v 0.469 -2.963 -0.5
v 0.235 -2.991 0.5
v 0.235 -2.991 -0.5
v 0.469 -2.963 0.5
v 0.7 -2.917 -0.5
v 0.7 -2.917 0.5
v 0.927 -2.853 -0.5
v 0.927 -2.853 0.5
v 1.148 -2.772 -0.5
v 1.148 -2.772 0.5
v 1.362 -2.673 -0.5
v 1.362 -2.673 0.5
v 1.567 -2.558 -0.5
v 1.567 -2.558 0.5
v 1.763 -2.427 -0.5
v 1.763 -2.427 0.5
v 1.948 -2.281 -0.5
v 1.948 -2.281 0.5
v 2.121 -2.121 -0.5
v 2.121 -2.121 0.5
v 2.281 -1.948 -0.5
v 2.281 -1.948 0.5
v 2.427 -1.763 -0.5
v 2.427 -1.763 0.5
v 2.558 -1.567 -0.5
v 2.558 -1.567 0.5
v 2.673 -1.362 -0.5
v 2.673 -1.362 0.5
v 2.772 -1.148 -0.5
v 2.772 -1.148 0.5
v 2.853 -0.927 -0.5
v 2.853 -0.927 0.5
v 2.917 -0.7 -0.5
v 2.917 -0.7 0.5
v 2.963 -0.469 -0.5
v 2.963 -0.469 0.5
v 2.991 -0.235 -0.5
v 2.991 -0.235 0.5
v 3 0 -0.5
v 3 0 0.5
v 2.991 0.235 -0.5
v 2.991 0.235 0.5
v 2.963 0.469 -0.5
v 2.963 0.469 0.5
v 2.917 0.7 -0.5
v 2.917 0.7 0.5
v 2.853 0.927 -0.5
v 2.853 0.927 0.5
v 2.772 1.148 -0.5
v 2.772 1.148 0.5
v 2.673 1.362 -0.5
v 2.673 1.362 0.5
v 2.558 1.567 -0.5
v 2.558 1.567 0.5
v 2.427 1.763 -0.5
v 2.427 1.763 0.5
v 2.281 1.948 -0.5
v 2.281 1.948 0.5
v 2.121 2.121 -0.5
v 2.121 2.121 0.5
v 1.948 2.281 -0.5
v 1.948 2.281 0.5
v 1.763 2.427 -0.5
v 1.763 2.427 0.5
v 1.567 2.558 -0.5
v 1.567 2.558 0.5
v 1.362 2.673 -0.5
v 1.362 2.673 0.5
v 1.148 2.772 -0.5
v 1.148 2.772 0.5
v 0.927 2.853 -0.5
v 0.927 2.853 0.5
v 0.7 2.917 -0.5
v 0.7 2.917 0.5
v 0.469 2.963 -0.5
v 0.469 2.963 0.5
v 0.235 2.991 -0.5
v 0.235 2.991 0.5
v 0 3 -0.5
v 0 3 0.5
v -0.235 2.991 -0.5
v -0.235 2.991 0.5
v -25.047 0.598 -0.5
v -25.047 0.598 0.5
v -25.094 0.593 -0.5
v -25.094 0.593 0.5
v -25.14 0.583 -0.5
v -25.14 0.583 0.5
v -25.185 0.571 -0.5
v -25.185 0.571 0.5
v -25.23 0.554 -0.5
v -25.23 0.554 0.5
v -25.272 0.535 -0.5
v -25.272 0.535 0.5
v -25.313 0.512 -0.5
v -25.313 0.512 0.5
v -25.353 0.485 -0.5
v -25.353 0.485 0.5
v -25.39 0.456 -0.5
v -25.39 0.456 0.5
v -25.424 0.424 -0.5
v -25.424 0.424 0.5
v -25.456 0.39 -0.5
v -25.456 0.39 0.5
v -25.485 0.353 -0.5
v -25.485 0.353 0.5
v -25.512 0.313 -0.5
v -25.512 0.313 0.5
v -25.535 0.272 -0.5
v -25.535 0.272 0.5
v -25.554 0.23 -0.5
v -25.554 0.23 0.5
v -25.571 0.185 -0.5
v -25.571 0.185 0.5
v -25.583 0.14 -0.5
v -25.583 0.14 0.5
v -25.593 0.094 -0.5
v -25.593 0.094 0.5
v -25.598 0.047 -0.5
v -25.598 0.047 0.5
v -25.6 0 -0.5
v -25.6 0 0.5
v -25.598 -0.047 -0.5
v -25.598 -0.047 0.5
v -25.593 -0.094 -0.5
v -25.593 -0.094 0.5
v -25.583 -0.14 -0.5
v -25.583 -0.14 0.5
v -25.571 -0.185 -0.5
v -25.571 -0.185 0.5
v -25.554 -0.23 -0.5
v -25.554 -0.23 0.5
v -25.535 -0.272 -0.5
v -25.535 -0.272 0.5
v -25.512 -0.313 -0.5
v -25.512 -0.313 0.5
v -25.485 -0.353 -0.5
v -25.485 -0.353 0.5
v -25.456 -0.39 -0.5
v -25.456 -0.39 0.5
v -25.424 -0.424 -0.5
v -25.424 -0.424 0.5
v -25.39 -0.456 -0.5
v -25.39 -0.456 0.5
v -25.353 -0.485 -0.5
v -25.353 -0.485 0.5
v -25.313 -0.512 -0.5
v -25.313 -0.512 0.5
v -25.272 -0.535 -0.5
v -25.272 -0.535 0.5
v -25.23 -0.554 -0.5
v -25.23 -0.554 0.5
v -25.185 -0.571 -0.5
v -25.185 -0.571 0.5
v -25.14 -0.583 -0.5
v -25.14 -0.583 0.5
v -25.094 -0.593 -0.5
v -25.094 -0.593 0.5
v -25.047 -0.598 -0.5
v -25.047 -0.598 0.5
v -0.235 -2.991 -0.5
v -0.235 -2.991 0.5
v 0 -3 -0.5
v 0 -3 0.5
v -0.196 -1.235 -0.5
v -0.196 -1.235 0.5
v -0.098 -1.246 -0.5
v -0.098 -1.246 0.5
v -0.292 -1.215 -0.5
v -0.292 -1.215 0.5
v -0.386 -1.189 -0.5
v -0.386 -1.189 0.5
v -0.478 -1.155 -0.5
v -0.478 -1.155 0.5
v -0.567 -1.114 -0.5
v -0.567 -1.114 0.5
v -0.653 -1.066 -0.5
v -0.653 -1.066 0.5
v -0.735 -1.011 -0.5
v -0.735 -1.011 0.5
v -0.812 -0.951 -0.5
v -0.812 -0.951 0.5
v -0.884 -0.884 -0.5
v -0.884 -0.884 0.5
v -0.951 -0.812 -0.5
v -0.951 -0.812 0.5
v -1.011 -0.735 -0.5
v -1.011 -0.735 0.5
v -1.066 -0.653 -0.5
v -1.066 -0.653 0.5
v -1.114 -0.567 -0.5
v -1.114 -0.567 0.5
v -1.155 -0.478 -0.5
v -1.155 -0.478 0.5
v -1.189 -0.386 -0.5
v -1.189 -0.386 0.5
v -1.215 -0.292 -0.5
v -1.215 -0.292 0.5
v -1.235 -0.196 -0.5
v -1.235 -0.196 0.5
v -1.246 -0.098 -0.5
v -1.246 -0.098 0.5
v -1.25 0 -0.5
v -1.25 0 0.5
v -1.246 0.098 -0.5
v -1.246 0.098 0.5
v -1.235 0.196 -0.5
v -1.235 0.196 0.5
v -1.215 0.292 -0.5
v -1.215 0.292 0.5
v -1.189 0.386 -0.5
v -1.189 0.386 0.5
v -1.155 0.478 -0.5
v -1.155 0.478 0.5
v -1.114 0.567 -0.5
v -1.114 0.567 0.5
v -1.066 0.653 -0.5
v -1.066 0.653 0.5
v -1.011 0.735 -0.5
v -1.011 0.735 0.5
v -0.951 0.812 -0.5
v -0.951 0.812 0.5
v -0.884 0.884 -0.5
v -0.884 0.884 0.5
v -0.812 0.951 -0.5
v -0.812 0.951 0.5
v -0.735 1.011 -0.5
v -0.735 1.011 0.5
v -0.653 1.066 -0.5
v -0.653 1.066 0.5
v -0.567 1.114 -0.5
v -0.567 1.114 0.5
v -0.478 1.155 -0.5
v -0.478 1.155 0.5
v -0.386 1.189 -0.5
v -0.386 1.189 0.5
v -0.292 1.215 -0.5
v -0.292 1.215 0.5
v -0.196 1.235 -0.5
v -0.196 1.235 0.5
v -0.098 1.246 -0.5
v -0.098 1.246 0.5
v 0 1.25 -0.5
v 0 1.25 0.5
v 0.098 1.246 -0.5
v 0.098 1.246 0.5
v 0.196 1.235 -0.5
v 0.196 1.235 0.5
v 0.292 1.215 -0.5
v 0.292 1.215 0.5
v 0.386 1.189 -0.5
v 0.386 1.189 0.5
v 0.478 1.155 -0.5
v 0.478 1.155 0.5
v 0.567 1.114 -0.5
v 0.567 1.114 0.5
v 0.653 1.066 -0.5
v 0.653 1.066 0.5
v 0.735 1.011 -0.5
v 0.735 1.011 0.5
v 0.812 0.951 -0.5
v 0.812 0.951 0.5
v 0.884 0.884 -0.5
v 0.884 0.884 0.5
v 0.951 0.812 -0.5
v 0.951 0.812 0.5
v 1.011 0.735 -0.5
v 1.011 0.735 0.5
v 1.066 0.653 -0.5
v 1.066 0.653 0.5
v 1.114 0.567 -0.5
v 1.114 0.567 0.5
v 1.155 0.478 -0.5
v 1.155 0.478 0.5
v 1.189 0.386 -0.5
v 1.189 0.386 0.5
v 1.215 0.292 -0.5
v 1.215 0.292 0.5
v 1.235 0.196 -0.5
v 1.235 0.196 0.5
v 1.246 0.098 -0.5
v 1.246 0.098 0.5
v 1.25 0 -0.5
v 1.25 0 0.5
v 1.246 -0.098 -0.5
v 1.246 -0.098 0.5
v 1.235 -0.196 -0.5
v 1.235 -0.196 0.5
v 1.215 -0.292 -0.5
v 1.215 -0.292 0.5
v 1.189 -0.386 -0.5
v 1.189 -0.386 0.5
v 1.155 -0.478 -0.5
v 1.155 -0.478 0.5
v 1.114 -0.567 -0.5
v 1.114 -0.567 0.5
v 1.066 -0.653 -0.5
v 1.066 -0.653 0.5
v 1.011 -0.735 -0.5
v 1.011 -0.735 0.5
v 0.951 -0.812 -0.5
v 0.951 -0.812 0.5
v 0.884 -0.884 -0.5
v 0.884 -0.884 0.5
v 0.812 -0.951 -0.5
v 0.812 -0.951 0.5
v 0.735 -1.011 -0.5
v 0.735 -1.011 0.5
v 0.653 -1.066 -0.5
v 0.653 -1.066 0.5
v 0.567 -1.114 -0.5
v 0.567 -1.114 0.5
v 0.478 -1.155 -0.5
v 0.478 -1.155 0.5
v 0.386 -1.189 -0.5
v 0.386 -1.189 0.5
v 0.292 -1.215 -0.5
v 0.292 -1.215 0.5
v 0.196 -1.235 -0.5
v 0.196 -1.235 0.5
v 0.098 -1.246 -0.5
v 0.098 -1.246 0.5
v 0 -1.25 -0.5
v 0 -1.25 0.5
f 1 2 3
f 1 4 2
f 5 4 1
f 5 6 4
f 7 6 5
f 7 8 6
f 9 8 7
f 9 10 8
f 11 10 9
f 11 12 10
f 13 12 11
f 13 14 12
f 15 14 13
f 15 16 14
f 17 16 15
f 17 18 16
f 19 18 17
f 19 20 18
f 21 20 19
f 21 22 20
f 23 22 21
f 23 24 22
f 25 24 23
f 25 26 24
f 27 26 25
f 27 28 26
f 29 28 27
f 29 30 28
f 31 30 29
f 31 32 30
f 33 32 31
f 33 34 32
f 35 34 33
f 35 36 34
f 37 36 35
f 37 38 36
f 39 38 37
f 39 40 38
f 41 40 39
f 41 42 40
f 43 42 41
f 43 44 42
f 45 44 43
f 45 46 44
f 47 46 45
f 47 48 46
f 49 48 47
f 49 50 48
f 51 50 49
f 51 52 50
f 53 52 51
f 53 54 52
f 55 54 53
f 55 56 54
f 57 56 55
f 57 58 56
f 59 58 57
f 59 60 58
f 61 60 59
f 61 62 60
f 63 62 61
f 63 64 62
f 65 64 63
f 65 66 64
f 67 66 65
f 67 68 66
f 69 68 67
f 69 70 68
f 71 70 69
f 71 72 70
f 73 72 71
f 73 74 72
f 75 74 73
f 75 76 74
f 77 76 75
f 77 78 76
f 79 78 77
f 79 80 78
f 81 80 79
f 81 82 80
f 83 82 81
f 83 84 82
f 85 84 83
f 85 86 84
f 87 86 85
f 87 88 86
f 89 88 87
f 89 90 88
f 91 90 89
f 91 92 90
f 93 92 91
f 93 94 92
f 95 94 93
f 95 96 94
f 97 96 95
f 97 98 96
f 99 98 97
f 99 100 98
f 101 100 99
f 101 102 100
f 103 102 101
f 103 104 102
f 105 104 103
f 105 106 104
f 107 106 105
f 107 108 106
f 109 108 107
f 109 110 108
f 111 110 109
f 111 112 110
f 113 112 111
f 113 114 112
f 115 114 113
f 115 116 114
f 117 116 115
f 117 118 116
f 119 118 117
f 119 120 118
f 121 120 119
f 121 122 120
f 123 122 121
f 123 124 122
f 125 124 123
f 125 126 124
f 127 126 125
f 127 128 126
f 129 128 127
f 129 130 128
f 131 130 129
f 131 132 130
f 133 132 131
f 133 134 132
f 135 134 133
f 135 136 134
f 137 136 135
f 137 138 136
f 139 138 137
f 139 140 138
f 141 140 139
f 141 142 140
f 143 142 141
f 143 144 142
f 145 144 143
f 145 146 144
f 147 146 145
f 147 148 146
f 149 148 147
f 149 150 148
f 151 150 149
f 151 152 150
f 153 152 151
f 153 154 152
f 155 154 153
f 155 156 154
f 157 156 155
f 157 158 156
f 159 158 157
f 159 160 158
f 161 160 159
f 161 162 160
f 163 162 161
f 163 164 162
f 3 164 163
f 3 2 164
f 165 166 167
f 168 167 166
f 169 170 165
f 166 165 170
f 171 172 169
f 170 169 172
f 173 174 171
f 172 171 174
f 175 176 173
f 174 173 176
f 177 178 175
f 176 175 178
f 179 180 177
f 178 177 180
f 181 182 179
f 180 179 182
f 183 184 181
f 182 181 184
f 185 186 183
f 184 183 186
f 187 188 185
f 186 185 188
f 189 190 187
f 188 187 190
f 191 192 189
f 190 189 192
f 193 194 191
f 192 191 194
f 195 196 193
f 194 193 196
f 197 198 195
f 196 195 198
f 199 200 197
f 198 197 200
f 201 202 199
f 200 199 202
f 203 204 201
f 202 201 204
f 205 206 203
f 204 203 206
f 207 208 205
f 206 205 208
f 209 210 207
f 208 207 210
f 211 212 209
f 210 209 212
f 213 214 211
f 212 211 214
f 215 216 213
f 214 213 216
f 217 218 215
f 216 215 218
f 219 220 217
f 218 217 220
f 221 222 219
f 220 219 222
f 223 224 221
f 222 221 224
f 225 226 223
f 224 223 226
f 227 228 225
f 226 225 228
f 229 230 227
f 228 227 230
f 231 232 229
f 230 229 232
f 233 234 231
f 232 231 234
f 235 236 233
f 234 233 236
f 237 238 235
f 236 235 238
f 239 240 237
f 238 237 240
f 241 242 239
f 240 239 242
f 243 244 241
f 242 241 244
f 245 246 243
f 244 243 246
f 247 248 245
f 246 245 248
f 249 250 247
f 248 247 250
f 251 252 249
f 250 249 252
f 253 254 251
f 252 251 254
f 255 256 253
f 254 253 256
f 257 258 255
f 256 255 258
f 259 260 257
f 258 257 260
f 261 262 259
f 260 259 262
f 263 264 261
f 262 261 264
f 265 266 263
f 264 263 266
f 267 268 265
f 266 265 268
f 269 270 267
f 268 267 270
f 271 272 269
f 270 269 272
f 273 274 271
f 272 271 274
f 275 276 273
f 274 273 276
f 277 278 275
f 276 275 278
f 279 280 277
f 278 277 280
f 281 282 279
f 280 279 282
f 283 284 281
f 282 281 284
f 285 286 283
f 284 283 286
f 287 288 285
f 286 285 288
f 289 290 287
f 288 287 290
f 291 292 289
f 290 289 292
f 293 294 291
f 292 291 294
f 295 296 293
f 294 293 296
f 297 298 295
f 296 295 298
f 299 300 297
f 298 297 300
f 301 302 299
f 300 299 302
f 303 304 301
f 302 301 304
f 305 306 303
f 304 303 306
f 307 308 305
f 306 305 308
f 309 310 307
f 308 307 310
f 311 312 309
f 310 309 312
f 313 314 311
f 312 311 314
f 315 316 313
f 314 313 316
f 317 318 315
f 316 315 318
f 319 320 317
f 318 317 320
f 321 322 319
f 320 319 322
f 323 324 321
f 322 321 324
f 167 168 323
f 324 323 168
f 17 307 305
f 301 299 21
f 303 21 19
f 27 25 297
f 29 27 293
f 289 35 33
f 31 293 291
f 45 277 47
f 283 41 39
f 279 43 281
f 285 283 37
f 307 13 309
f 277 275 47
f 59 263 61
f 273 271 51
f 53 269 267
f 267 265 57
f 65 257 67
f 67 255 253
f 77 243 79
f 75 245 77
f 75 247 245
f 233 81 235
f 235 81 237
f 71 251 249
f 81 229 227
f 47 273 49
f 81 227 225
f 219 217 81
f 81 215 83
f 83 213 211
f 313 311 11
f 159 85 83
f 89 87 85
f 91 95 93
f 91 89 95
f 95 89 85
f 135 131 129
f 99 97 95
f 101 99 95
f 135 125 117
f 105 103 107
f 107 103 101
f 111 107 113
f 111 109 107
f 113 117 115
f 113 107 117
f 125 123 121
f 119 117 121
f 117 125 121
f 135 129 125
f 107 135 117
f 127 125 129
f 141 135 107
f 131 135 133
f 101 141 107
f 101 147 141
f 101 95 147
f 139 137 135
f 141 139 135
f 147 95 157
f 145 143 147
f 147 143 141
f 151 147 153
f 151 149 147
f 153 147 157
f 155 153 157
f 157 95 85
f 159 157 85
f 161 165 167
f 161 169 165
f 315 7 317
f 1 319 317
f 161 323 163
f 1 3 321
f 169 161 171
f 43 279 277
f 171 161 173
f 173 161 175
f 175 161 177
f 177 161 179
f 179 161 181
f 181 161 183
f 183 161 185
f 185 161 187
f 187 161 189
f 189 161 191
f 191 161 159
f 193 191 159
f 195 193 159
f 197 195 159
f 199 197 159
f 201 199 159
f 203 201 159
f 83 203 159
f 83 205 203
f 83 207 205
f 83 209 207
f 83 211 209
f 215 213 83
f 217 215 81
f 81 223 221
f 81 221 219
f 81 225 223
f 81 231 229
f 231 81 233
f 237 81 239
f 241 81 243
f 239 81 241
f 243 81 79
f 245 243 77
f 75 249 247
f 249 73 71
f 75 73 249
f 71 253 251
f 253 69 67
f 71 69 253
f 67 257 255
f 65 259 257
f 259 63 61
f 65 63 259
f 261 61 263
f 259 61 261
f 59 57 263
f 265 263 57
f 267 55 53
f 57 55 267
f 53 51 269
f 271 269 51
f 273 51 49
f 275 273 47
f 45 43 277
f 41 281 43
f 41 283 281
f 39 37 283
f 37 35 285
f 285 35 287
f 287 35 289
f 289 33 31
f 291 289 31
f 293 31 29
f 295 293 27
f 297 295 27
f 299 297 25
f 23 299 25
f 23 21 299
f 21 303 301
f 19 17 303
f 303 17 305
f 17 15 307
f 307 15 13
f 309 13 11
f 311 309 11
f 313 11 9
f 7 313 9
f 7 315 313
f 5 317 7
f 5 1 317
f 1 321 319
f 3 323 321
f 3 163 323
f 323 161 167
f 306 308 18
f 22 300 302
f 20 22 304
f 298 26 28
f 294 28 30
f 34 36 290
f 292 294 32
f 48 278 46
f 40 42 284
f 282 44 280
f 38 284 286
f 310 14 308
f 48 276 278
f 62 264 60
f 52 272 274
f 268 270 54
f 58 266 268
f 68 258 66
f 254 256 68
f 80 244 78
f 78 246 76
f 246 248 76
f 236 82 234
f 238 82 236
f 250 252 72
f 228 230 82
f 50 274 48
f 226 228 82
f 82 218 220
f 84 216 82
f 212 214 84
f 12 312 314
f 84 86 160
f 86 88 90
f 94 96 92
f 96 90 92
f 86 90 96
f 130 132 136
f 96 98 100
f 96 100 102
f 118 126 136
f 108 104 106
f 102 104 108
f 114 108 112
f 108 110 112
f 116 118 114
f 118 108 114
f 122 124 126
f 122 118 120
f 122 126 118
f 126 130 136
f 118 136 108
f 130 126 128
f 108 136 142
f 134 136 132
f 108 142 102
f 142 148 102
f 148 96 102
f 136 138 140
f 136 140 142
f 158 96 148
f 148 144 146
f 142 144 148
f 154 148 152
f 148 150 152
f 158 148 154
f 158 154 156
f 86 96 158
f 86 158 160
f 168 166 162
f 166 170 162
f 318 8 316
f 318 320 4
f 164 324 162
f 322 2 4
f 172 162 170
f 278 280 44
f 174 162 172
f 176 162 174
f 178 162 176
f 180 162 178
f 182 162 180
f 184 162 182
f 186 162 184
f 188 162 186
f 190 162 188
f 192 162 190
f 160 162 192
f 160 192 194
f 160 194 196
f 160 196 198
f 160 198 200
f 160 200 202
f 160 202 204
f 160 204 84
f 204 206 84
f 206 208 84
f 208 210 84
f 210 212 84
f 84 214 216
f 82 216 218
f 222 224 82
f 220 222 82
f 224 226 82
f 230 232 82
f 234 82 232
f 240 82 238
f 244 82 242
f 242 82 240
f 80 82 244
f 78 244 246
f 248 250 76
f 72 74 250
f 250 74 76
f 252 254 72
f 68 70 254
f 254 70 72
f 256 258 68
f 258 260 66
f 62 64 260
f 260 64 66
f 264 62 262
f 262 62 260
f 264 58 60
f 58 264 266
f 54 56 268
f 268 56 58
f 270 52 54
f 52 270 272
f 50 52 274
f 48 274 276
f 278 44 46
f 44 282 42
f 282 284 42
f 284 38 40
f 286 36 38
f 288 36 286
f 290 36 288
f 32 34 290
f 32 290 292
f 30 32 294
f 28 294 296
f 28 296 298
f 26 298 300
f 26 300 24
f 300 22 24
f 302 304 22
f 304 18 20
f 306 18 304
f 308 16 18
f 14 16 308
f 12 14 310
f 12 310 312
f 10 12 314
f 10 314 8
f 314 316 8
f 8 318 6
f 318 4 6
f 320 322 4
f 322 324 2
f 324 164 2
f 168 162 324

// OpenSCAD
// file: scad-utils/mirror.scad
// Laser Tunnel -- Angled Mirror Holder
// Adrian McCarthy 2022

// A larger angle makes a wider cone of light. (degrees)
Angle = 5; // [3:1:20]

// The mirror should not be wider than the hub of the fan. (mm)
Mirror_Diameter = 25.4; // [20:0.2:27]

// The mirror should be thin and light. (mm)
Mirror_Thickness = 1.75; // [1:0.25:2]

// Some dimensions may be optimized for your printer's nozzle size, but the default value should work for most. (mm)
Nozzle_Diameter = 0.4;  // [0.1:0.1:0.8]

module angled_mirror_holder(angle=5, mirror_d=25.4, mirror_th=1.75, nozzle_d=0.4) {
    h = mirror_d;
    inner_d = mirror_d + nozzle_d;
    outer_d = inner_d + 2;
    box = sqrt(2)*outer_d;
    intersection() {
        r = inner_d/2;
        translate([r, 0, 0]) rotate([0, angle, 0]) translate([-r, 0, 0])
        difference() {
            translate([0, 0, mirror_th-h]) cylinder(d=outer_d, h=h);
            translate([0, 0, 0.1]) cylinder(d=inner_d, h=h);
        }

        translate([-box/2, -box/2, 0]) cube(box);
    }
}

angled_mirror_holder(Angle, Mirror_Diameter, Mirror_Thickness, Nozzle_Diameter, $fn=92);
// file: scad-utils/morphology.scad
// Copyright (c) 2013 Oskar Linde. All rights reserved.
// License: BSD
//
// This library contains basic 2D morphology operations
//
// outset(d=1)            - creates a polygon at an offset d outside a 2D shape
// inset(d=1)             - creates a polygon at an offset d inside a 2D shape
// fillet(r=1)            - adds fillets of radius r to all concave corners of a 2D shape
// rounding(r=1)          - adds rounding to all convex corners of a 2D shape
// shell(d,center=false)  - makes a shell of width d along the edge of a 2D shape
//                        - positive values of d places the shell on the outside
//                        - negative values of d places the shell on the inside
//                        - center=true and positive d places the shell centered on the edge

module outset(d=1) {
	// Bug workaround for older OpenSCAD versions
	if (version_num() < 20130424) render() outset_extruded(d) children();
	else minkowski() {
		circle(r=d);
		children();
	}
}

module outset_extruded(d=1) {
   projection(cut=true) minkowski() {
        cylinder(r=d);
        linear_extrude(center=true) children();
   }
}

module inset(d=1) {
	 render() inverse() outset(d=d) inverse() children();
}

module fillet(r=1) {
	inset(d=r) render() outset(d=r) children();
}

module rounding(r=1) {
	outset(d=r) inset(d=r) children();
}

module shell(d,center=false) {
	if (center && d > 0) {
		difference() {
			outset(d=d/2) children();
			inset(d=d/2) children();
		}
	}
	if (!center && d > 0) {
		difference() {
			outset(d=d) children();
			children();
		}
	}
	if (!center && d < 0) {
		difference() {
			children();
			inset(d=-d) children();
		}
	}
	if (d == 0) children();
}


// Below are for internal use only

module inverse() {
	difference() {
		square(1e5,center=true);
		children();
	}
}


// TEST CODE

use <mirror.scad>

module arrow(l=1,w=.6,t=0.15) {
	mirror_y() polygon([[0,0],[l,0],[l-w/2,w/2],[l-w/2-sqrt(2)*t,w/2],[l-t/2-sqrt(2)*t,t/2],[0,t/2]]);
}

module shape() {
	polygon([[0,0],[1,0],[1.5,1],[2.5,1],[2,-1],[0,-1]]);
}

if(0) assign($fn=32) {

	for (p = [0:10*3-1]) assign(o=floor(p/3)) {
		translate([(p%3)*2.5,-o*3]) {
			//%if (p % 3 == 1) translate([0,0,1]) shape();
			if (p % 3 == 0) shape();
			if (p % 3 == 1) translate([0.6,0]) arrow();
			if (p % 3 == 2) {
				if (o == 0) inset(d=0.3) shape();
				if (o == 1) outset(d=0.3) shape();
				if (o == 2) rounding(r=0.3) shape();
				if (o == 3) fillet(r=0.3) shape();
				if (o == 4) shell(d=0.3) shape();
				if (o == 5) shell(d=-0.3) shape();
				if (o == 6) shell(d=0.3,center=true) shape();
				if (o == 7) rounding(r=0.3) fillet(r=0.3) shape();
				if (o == 8) shell(d=0.3,center=true) fillet(r=0.3) rounding(r=0.3) shape();
				if (o == 9) shell(d=-0.3) fillet(r=0.3) rounding(r=0.3) shape();
			}
		}
	}
}
// main file
include <_tenki_hari_base.scad>

$fn = 80;

color("#000") th_needle();
